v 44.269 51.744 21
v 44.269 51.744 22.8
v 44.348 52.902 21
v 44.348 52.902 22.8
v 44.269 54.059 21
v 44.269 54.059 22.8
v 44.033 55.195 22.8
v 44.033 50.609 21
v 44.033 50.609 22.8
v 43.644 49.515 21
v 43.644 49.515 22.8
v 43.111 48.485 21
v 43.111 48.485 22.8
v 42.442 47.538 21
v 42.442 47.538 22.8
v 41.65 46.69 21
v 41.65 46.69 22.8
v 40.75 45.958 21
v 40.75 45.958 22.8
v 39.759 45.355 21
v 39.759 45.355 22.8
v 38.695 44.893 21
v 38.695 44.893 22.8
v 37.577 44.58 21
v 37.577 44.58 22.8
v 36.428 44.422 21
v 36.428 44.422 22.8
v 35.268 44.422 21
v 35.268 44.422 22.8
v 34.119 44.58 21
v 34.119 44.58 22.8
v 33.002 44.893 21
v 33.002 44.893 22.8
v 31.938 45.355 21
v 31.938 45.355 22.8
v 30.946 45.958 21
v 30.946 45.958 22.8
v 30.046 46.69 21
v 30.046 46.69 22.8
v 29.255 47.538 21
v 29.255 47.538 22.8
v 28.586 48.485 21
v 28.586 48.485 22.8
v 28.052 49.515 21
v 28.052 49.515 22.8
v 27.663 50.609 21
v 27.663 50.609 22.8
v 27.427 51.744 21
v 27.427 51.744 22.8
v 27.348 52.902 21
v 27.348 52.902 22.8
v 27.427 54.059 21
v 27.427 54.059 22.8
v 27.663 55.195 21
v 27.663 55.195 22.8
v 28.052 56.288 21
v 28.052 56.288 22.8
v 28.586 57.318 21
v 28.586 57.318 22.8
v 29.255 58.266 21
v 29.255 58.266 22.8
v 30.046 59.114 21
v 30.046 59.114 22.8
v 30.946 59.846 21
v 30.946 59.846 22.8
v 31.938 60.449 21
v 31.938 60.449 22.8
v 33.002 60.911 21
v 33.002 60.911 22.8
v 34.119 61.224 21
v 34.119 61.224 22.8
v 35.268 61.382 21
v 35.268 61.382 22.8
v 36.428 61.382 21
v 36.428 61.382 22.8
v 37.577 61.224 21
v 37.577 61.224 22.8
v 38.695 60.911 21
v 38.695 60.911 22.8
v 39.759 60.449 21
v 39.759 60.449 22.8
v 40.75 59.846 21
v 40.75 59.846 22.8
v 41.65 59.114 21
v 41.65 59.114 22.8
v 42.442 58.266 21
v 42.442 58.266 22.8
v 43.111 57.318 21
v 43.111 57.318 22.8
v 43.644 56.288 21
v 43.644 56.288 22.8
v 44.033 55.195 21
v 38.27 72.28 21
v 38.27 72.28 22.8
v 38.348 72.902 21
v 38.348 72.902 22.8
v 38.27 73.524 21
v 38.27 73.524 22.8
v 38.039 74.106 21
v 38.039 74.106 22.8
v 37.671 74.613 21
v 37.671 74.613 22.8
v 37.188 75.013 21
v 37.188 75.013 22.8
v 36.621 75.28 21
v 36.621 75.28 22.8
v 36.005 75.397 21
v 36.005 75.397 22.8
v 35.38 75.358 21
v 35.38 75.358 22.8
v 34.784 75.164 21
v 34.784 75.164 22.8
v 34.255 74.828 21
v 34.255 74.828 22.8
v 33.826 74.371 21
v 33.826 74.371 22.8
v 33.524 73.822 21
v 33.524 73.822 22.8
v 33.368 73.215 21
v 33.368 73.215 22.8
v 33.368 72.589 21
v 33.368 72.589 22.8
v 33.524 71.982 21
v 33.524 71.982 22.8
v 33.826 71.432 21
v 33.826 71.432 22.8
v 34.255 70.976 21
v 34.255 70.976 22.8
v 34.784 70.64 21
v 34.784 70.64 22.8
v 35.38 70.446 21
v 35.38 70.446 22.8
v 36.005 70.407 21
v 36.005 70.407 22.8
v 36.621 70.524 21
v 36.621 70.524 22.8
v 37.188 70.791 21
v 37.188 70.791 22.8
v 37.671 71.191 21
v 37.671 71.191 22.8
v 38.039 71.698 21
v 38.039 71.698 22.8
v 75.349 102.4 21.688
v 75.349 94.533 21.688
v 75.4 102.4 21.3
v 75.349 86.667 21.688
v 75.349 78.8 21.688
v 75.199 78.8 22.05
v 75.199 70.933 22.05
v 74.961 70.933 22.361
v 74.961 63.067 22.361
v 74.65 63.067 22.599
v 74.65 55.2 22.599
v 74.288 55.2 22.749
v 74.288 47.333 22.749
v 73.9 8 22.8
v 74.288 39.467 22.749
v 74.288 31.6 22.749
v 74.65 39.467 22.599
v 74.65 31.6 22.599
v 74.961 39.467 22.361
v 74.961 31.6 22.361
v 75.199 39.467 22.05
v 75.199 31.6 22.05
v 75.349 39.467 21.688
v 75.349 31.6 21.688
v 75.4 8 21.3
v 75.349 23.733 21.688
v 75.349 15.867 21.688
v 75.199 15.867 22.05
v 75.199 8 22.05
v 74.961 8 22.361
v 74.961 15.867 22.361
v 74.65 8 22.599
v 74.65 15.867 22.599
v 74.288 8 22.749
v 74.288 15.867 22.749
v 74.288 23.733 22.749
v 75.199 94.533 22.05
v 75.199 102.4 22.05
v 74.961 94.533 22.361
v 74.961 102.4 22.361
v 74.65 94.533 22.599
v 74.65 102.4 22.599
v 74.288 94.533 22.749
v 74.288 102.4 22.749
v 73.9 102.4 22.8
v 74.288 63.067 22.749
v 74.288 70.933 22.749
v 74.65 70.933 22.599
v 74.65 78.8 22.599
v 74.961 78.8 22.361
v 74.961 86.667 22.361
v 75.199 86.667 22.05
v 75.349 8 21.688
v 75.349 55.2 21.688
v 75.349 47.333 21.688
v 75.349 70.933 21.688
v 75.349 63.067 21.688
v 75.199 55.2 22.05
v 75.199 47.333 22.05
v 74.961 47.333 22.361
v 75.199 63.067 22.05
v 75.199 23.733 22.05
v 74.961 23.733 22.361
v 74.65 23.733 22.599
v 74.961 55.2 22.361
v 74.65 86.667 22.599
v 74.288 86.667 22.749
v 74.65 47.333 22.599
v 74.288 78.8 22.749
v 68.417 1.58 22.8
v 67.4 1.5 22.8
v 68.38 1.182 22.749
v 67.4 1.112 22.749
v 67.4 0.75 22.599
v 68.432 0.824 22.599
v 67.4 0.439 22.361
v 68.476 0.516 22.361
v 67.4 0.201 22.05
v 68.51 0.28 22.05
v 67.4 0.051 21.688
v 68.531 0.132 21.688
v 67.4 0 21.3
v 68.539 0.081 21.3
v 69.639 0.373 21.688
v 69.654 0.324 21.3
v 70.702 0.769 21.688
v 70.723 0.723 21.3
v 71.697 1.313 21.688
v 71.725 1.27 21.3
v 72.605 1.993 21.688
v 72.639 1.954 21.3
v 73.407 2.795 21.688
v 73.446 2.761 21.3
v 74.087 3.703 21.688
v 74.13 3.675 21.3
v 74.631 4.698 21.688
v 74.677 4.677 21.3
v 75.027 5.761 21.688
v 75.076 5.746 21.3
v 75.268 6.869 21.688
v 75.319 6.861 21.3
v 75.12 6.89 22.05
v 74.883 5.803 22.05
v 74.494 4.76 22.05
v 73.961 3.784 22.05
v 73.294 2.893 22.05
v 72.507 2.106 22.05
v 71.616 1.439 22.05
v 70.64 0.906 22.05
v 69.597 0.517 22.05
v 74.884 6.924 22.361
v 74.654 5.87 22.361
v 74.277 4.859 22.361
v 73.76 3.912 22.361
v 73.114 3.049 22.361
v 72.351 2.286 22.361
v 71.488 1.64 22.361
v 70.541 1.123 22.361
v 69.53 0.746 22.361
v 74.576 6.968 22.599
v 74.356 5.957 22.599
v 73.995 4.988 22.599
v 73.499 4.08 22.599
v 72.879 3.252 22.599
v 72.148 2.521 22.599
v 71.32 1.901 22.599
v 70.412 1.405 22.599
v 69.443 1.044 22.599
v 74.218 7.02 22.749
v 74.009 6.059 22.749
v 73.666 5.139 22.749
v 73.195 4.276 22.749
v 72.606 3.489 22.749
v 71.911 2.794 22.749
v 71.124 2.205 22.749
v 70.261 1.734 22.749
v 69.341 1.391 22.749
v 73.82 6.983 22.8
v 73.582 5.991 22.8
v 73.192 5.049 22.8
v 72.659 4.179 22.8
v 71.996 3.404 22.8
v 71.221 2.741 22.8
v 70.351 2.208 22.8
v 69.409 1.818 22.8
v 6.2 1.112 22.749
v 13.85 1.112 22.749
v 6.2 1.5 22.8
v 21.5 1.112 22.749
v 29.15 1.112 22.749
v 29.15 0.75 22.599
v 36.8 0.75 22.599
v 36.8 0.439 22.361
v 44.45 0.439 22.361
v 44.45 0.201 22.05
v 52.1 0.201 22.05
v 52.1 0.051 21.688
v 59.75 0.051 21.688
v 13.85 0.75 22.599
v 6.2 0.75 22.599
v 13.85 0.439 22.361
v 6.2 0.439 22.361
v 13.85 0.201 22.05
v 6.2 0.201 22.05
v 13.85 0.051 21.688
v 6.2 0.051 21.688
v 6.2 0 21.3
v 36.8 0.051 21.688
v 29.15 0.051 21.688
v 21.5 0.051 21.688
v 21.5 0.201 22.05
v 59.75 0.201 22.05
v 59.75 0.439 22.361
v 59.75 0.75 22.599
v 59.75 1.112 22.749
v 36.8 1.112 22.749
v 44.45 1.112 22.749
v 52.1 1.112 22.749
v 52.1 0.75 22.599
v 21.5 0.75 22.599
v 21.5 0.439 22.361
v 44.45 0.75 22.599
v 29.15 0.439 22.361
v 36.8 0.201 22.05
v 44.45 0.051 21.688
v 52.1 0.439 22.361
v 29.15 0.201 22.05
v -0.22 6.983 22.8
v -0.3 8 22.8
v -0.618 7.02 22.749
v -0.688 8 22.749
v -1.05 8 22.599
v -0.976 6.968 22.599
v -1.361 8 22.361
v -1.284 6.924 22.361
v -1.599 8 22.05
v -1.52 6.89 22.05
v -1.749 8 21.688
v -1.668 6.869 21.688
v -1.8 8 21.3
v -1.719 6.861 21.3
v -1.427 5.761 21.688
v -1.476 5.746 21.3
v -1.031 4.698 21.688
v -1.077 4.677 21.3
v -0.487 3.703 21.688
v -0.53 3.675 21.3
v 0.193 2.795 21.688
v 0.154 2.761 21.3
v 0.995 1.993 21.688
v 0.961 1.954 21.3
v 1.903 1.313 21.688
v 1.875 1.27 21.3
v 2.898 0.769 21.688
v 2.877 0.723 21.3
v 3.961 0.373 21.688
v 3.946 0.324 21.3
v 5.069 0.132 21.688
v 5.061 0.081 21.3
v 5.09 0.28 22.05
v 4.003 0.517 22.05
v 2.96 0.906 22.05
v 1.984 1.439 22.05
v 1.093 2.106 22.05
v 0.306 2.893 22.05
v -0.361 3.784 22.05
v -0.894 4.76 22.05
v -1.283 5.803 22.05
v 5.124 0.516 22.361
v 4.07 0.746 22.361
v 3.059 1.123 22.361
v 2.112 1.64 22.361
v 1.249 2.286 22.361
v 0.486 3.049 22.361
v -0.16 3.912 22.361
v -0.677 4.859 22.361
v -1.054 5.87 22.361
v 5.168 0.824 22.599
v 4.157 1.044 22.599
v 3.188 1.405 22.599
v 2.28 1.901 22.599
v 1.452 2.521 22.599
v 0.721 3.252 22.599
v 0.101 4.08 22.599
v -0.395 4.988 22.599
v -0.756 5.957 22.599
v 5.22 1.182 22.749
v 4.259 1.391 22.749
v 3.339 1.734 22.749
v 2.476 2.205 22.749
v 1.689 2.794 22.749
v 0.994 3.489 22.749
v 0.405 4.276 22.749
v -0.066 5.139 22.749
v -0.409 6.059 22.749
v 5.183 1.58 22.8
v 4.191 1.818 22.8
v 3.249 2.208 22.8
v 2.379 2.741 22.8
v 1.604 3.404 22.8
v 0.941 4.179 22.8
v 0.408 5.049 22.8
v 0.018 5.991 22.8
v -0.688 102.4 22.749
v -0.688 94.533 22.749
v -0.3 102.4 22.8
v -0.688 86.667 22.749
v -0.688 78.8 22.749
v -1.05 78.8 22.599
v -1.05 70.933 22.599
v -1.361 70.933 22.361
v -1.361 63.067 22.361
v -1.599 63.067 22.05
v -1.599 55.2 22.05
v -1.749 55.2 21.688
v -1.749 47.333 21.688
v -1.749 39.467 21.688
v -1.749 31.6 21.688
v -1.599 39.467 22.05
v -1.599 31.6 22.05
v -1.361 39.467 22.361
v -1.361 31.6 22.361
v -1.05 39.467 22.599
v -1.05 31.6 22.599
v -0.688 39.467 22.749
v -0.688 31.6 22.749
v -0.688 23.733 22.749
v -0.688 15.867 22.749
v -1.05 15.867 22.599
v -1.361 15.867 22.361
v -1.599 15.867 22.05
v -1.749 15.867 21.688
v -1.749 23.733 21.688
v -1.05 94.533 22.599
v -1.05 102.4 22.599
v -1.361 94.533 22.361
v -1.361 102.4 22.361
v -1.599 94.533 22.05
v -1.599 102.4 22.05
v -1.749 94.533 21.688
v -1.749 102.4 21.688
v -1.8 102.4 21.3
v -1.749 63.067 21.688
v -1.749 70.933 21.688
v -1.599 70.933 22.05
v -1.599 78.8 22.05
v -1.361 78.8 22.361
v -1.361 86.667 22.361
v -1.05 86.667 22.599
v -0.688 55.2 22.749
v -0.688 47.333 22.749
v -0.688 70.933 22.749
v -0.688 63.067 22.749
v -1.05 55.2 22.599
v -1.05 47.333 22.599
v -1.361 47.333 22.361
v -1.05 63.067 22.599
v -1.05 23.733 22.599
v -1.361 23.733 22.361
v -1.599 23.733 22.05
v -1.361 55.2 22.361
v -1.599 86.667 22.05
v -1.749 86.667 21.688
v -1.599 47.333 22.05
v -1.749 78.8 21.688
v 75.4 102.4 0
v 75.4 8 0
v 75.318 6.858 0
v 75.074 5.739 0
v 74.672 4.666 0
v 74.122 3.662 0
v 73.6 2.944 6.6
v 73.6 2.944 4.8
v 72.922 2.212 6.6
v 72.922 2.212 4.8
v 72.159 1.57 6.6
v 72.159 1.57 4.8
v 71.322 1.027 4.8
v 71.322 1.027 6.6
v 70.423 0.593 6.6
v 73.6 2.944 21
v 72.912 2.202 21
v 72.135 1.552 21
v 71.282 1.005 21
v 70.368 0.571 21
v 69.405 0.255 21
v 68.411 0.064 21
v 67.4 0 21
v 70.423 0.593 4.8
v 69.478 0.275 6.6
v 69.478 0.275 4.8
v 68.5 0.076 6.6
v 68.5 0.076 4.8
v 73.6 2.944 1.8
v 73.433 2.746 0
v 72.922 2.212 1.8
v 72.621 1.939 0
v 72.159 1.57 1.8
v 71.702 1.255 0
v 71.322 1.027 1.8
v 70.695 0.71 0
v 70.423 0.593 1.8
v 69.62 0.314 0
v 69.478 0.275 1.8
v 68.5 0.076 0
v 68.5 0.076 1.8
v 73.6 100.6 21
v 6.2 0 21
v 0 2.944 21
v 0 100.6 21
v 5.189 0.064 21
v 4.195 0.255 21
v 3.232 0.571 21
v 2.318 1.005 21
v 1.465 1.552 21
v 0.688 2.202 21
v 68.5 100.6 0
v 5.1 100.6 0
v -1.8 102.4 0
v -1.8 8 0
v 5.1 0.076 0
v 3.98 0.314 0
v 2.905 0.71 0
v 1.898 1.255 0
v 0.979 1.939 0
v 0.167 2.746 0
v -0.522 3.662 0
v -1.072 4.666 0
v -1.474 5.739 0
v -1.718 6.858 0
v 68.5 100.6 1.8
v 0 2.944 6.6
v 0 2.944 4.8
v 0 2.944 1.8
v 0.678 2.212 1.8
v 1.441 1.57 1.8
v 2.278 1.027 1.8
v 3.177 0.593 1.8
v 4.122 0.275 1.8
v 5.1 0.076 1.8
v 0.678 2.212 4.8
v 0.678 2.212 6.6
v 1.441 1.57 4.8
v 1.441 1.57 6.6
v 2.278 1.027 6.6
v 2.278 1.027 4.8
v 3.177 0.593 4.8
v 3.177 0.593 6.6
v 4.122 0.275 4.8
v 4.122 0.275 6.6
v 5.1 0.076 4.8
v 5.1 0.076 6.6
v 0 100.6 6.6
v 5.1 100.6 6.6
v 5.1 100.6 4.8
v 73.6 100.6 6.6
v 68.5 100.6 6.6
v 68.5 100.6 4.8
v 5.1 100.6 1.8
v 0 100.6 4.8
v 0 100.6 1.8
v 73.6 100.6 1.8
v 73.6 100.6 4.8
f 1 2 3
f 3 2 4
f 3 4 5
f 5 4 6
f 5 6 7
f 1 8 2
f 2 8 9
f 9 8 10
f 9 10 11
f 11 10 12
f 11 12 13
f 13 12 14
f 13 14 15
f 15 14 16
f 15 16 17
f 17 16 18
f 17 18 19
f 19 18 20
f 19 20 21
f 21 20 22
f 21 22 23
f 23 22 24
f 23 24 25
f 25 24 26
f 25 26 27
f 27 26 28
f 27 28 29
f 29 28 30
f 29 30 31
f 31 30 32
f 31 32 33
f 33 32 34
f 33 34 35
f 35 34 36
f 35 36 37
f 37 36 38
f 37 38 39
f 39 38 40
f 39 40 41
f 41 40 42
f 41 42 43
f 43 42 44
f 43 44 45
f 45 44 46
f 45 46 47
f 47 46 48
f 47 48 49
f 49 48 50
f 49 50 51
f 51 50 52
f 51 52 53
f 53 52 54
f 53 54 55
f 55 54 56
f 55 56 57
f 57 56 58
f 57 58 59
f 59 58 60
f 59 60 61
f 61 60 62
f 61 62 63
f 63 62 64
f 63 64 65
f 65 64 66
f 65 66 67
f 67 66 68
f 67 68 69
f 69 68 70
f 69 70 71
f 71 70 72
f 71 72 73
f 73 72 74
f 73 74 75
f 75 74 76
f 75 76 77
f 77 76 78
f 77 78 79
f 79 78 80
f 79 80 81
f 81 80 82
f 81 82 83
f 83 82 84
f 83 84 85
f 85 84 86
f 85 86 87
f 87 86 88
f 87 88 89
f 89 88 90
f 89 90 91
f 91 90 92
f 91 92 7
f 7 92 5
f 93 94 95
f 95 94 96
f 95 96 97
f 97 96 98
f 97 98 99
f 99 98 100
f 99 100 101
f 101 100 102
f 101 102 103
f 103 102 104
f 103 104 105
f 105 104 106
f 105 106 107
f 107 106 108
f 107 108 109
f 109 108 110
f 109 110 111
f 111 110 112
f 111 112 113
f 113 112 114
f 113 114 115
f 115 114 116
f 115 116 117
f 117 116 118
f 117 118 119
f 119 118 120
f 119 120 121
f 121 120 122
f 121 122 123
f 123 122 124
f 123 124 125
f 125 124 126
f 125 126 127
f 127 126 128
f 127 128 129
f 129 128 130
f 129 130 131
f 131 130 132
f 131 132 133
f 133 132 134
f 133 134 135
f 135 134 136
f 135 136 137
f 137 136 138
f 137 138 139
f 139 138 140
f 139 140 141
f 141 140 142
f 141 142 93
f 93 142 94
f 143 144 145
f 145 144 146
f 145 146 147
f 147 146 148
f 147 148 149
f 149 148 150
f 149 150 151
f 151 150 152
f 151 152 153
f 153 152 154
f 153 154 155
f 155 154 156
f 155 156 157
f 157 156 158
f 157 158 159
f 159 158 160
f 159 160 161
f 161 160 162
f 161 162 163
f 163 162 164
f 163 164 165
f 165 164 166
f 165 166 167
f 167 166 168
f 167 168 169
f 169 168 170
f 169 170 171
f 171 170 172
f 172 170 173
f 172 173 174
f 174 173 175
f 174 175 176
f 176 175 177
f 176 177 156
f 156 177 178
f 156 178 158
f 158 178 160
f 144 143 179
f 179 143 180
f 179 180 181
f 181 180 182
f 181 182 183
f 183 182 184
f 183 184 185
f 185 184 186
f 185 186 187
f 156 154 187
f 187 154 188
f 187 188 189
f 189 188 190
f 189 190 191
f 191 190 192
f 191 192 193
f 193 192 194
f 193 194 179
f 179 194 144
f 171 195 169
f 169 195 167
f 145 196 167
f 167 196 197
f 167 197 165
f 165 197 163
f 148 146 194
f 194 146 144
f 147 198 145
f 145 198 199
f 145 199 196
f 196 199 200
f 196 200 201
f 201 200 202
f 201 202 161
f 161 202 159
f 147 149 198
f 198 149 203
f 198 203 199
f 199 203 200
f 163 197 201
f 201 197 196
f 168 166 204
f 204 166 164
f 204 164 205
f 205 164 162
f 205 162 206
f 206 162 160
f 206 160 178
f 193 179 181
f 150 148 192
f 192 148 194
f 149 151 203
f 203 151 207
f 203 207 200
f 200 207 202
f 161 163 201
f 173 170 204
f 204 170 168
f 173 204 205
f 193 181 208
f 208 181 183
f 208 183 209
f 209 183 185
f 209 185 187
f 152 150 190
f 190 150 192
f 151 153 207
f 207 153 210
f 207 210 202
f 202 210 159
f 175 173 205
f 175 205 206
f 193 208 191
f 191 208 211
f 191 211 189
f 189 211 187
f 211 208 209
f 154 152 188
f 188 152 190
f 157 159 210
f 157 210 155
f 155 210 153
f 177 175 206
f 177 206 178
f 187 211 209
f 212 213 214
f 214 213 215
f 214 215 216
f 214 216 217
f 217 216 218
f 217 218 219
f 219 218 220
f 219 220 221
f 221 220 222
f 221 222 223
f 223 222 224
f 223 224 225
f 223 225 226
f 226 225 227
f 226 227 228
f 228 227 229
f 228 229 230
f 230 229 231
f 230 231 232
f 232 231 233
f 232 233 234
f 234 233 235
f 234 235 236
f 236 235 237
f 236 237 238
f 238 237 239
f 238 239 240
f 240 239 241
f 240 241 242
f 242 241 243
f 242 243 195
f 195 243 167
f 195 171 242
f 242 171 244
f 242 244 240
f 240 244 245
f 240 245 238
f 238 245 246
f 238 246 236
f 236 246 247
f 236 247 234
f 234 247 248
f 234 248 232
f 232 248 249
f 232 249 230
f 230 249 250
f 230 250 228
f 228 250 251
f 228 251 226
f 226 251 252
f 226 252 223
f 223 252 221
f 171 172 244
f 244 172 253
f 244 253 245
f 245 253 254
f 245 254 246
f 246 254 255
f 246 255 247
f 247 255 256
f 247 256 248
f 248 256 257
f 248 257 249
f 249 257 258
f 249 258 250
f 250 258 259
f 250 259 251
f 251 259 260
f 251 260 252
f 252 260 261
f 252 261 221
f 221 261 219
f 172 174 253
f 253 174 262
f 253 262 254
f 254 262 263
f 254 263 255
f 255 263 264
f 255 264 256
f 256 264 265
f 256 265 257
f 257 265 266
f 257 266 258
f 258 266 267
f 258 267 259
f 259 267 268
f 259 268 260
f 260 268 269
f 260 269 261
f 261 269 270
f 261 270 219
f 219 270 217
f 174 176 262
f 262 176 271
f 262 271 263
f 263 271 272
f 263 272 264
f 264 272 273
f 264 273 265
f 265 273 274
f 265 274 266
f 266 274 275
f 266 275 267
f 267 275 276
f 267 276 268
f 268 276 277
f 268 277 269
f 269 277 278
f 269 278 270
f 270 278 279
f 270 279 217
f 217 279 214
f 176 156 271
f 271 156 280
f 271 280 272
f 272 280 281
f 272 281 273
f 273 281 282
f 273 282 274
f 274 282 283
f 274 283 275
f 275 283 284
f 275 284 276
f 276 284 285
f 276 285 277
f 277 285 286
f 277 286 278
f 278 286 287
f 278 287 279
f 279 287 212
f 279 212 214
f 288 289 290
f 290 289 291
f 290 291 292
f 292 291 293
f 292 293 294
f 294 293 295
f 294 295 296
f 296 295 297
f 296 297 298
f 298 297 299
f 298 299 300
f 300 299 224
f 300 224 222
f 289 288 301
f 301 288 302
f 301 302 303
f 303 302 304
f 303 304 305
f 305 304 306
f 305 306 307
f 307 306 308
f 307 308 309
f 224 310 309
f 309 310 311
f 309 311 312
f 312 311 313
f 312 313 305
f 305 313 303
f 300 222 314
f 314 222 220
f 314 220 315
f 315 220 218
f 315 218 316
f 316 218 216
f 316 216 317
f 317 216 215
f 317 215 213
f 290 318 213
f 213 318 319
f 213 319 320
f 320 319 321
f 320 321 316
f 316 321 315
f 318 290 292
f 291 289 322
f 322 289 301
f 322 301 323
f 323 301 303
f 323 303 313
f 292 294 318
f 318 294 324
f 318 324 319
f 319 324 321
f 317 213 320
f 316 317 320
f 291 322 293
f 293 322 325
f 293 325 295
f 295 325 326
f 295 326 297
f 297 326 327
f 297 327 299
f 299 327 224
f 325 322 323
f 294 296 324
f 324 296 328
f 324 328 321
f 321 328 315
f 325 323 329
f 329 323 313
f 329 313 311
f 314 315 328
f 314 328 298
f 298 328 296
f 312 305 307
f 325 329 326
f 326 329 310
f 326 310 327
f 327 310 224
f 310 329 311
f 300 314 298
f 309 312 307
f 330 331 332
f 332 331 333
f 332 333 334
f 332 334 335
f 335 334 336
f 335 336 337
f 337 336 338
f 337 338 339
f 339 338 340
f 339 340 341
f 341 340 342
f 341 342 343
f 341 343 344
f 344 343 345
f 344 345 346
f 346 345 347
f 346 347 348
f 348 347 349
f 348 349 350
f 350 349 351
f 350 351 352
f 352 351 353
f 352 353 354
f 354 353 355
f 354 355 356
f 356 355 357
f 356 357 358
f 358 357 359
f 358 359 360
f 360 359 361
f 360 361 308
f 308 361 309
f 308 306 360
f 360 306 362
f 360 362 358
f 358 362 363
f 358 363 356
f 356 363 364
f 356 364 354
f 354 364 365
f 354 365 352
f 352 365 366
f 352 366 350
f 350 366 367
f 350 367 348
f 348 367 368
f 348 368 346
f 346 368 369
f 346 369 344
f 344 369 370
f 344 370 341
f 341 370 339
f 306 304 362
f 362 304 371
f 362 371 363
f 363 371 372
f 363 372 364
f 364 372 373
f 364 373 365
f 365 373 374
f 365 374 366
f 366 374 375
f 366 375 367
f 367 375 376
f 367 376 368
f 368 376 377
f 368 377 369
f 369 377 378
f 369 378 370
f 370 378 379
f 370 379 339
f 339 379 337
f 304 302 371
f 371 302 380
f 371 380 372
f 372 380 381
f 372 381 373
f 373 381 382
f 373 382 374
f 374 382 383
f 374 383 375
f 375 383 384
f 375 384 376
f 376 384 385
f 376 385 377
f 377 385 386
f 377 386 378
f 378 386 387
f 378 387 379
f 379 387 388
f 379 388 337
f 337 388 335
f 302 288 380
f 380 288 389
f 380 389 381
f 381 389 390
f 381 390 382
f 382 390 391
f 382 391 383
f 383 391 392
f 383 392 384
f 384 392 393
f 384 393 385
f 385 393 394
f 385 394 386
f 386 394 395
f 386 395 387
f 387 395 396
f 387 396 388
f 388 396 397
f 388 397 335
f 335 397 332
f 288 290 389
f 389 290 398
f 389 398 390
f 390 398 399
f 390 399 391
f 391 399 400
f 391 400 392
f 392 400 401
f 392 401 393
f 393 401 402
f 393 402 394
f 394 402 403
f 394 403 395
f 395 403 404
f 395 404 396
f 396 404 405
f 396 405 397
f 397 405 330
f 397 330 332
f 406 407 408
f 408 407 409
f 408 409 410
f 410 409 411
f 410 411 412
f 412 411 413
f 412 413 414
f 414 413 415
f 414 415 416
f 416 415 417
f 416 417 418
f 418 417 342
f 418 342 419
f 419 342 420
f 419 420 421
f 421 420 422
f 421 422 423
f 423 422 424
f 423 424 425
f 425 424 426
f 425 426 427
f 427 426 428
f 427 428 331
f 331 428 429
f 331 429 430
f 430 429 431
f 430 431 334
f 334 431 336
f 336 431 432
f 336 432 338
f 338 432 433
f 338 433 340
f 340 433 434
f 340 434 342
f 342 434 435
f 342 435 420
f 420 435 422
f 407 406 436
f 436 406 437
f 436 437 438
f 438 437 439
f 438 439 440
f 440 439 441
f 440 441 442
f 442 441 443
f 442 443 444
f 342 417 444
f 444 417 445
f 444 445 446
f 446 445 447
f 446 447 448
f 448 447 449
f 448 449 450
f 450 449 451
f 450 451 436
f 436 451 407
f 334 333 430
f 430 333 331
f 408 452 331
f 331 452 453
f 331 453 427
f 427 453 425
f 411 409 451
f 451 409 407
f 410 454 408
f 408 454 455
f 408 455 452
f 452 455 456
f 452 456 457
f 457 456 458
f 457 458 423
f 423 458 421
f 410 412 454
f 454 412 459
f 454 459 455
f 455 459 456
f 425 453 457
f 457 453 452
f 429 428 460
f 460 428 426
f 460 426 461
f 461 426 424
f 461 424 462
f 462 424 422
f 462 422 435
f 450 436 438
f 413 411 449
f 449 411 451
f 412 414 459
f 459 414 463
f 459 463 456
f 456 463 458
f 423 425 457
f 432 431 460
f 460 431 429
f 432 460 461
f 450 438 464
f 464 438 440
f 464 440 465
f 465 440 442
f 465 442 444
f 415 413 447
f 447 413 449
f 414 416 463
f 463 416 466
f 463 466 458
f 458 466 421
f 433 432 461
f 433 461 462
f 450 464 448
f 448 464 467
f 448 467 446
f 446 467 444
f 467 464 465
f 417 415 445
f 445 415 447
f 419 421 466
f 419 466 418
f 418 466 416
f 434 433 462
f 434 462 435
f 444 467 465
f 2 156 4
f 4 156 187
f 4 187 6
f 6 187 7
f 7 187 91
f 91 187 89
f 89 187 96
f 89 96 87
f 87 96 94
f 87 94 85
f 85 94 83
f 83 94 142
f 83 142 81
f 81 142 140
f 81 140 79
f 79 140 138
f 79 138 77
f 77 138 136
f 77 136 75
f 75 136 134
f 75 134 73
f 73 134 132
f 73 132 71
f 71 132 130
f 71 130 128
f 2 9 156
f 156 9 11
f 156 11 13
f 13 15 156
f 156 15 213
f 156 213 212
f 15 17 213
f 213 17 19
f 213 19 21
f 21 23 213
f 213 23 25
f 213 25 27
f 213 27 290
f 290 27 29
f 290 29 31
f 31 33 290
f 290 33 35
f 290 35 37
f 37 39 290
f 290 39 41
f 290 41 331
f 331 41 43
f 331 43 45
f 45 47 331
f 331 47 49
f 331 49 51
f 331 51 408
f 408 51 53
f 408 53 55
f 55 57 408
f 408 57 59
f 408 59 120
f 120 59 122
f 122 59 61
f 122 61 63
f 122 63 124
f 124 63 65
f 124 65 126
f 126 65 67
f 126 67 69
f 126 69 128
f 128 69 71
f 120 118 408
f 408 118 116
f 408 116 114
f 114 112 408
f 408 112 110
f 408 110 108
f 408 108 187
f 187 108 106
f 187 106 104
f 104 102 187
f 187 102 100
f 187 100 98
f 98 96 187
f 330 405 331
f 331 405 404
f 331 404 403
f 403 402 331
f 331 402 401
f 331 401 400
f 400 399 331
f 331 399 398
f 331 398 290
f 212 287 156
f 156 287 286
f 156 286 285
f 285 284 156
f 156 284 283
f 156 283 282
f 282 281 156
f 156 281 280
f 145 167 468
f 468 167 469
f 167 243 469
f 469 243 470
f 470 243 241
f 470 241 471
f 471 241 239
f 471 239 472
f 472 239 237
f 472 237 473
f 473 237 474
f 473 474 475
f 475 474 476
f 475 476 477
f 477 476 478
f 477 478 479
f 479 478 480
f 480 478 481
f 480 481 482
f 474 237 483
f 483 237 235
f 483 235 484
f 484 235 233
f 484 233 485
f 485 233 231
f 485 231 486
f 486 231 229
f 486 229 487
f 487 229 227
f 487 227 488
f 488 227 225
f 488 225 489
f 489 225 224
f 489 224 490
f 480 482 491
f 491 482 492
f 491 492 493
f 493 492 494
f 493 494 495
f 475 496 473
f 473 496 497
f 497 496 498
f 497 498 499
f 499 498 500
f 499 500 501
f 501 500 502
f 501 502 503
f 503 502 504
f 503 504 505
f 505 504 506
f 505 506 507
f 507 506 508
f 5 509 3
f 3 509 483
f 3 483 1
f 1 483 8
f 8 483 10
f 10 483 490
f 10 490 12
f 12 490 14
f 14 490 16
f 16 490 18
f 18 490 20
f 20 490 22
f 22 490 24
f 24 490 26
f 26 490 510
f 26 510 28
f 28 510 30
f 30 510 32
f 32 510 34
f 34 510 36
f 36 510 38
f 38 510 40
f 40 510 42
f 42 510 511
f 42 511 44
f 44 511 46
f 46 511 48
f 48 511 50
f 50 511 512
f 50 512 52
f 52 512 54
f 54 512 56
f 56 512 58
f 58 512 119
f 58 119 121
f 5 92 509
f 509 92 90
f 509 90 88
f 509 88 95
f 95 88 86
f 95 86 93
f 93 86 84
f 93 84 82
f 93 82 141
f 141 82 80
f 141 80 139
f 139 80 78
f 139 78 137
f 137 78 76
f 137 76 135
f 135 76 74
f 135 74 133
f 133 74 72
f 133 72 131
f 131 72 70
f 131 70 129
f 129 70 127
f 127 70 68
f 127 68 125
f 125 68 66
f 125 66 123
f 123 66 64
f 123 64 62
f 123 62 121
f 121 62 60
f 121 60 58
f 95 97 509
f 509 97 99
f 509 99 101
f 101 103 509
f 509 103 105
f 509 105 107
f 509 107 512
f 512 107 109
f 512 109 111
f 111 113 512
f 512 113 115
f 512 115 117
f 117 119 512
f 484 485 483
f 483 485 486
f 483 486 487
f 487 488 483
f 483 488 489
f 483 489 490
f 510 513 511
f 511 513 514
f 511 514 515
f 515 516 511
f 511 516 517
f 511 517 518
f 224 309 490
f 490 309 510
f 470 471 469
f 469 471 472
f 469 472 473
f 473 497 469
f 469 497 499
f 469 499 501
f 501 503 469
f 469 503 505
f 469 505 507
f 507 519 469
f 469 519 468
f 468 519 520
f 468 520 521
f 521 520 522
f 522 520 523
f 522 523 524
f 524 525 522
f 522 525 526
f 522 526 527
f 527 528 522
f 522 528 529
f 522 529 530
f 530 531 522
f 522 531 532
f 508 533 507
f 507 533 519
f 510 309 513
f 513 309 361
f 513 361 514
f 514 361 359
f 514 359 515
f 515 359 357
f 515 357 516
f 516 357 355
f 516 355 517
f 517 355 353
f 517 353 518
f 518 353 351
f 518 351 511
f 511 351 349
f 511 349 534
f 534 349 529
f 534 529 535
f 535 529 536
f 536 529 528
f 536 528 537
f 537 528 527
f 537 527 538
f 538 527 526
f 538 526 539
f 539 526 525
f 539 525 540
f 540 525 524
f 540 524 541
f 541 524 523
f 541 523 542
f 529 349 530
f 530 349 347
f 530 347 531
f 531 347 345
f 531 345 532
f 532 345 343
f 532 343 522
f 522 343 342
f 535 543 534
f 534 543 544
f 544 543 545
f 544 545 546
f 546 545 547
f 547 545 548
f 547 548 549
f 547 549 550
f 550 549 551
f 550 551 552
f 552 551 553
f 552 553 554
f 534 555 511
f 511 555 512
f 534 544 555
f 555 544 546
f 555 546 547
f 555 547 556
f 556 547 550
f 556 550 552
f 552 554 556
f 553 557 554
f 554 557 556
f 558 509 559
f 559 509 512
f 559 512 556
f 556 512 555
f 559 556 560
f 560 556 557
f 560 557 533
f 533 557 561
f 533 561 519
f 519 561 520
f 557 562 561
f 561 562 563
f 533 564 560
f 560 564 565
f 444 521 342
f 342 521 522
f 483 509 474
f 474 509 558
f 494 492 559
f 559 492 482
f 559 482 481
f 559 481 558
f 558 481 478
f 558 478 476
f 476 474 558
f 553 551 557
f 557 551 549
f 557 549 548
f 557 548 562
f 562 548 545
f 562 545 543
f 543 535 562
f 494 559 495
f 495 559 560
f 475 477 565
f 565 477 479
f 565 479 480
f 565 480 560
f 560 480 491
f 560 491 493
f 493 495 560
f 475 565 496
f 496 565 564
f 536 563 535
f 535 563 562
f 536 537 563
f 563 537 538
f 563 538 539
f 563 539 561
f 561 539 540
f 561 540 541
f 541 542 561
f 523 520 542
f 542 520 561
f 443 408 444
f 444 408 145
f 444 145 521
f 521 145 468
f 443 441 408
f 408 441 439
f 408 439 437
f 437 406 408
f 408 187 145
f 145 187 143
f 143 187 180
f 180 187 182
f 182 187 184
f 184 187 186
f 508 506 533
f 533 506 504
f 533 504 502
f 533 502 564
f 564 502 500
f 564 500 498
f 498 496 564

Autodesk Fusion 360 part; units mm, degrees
sketch "Sketch1" plane through (0, 0, 0) normal (0, 0, 1) x (1, 0, 0)
  line L0 (0, 0) -> (73.6, 0)
  line L1 (73.6, 0) -> (73.6, 100.6)
  line L2 (73.6, 100.6) -> (0, 100.6)
  line L3 (0, 100.6) -> (0, 0)
  line L4 (5.1, 0) -> (68.5, 0)
  line L5 (68.5, 0) -> (68.5, 100.6)
  line L6 (68.5, 100.6) -> (5.1, 100.6)
  line L7 (5.1, 100.6) -> (5.1, 0)
  line L8 (-1.8, 0) -> (75.4, 0)
  line L9 (75.4, 0) -> (75.4, 100.6)
  line L10 (75.4, 100.6) -> (-1.8, 100.6)
  line L11 (-1.8, 100.6) -> (-1.8, 0)
  dimension "d1" = 73.6
  dimension "d2" = 100.6
  dimension "d3" = 63.4
  dimension "d4" = 5.1
  dimension "d6" = 1.8
  dimension "d7" = 1.8
extrude "Extrude1" add sketch "Sketch1" along normal blind 1.8 contours L0 L2 L3 L7 L8 L10 | L3 L8 L10 L11 | L0 L1 L2 L5 L8 L10 | L1 L8 L9 L10 makes body 1 at (70.8, 33.5333, 0) makes body 2 at (0.5, 67.0667, 0)
extrude "Extrude2" add sketch "Sketch1" along normal blind 4.8 separate body contours L3 L8 L10 L11 | L1 L8 L9 L10 makes body 3 at (-1.8, 67.0667, 1.6) makes body 4 at (75.4, 33.5333, 1.6)
extrude "Extrude3" add sketch "Sketch1" along normal blind 1.8 from surface at 4.8 separate body contours L0 L2 L3 L7 L8 L10 | L3 L8 L10 L11 | L0 L1 L2 L5 L8 L10 | L1 L8 L9 L10 makes body 5 at (70.8, 33.5333, 4.8) makes body 6 at (0.5, 67.0667, 4.8)
extrude "Extrude4" add sketch "Sketch1" along normal blind 16 from surface at 5 separate body contours L3 L8 L10 L11 | L1 L8 L9 L10 makes body 7 at (75.4, 33.5333, 10.3333) makes body 8 at (-1.8, 67.0667, 10.3333)
extrude "Extrude5" add sketch "Sketch1" along normal blind 1.8 from surface at 21 separate body makes body 9
sketch "Sketch2" plane through (0, 100.6, 0) normal (0, 1, 0) x (-1, 0, 0)
  line L0 (-75.4, 21) -> (1.8, 21)
  line L1 (1.8, 21) -> (1.8, 22.8)
  line L2 (1.8, 22.8) -> (-75.4, 22.8)
  line L3 (-75.4, 22.8) -> (-75.4, 21)
  line L4 (-75.4, 0) -> (1.8, 0)
  line L5 (1.8, 0) -> (1.8, 22.8)
  line L6 (1.8, 22.8) -> (-75.4, 22.8)
  line L7 (-75.4, 22.8) -> (-75.4, 0)
  line L8 (1.8, 5) -> (1.8, 21)
  line L9 (-75.4, 5) -> (-75.4, 21)
  line L10 (-75.4, 0) -> (1.8, 0)
extrude "Extrude6" add sketch "Sketch2" along normal blind 1.8 bodies 1 2 3 4 5 6 7 8 9
fillet "Fillet1" radius 8 2 edges at (-1.8, 0, 11.4) (75.4, 0, 11.4) on bodies 1
fillet "Fillet2" radius 1.5 5 edges at (-1.8, 55.2, 22.8) (0.5431, 2.3431, 22.8) (36.8, 0, 22.8) (73.0569, 2.3431, 22.8) (75.4, 55.2, 22.8) on bodies 1
sketch "Sketch3" plane through (0, 0, 22.8) normal (0, 0, 1) x (-1, 0, 0)
  line L0 (0.3, -102.4) -> (0.3, -8)
  arc A0 (0.3, -8) -> (-6.2, -1.5) centre (-6.2, -8) ccw
  line L1 (-6.2, -1.5) -> (-67.4, -1.5)
  arc A1 (-67.4, -1.5) -> (-73.9, -8) centre (-67.4, -8) ccw
  line L2 (-73.9, -8) -> (-73.9, -102.4)
  line L3 (-73.9, -102.4) -> (0.3, -102.4)
  line L4 (0.3, -102.4) -> (-71.9962, -3.4038) construction
  circle A2 centre (-35.8481, -52.9019) radius 8.5
  line L5 (-35.8481, -72.9019) -> (-35.8481, -52.9019)
  circle A3 centre (-35.8481, -72.9019) radius 2.5
  dimension "d26" = 17
  dimension "d27" = 20
  dimension "d28" = 5
extrude "Extrude7" cut sketch "Sketch3" against normal blind 1.8 contours A2 | A3 bodies 1
equation "d4 = ( 10.2 / 2 ) * 1 mm"
equation "t = 1.8 mm" comment "thickness"
equation "d6 = t"
equation "d7 = t"
equation "d8 = t"
equation "d10 = t + 3 mm"
equation "d12 = t + 3 mm"
equation "d13 = t"
equation "ra = 8 mm" comment "radius"
equation "d16 = 2 mm + 3 mm"
equation "d19 = 19 mm + 2 mm"
equation "d20 = t"
equation "d22 = t"
equation "d24 = ra"
equation "d29 = -t"
